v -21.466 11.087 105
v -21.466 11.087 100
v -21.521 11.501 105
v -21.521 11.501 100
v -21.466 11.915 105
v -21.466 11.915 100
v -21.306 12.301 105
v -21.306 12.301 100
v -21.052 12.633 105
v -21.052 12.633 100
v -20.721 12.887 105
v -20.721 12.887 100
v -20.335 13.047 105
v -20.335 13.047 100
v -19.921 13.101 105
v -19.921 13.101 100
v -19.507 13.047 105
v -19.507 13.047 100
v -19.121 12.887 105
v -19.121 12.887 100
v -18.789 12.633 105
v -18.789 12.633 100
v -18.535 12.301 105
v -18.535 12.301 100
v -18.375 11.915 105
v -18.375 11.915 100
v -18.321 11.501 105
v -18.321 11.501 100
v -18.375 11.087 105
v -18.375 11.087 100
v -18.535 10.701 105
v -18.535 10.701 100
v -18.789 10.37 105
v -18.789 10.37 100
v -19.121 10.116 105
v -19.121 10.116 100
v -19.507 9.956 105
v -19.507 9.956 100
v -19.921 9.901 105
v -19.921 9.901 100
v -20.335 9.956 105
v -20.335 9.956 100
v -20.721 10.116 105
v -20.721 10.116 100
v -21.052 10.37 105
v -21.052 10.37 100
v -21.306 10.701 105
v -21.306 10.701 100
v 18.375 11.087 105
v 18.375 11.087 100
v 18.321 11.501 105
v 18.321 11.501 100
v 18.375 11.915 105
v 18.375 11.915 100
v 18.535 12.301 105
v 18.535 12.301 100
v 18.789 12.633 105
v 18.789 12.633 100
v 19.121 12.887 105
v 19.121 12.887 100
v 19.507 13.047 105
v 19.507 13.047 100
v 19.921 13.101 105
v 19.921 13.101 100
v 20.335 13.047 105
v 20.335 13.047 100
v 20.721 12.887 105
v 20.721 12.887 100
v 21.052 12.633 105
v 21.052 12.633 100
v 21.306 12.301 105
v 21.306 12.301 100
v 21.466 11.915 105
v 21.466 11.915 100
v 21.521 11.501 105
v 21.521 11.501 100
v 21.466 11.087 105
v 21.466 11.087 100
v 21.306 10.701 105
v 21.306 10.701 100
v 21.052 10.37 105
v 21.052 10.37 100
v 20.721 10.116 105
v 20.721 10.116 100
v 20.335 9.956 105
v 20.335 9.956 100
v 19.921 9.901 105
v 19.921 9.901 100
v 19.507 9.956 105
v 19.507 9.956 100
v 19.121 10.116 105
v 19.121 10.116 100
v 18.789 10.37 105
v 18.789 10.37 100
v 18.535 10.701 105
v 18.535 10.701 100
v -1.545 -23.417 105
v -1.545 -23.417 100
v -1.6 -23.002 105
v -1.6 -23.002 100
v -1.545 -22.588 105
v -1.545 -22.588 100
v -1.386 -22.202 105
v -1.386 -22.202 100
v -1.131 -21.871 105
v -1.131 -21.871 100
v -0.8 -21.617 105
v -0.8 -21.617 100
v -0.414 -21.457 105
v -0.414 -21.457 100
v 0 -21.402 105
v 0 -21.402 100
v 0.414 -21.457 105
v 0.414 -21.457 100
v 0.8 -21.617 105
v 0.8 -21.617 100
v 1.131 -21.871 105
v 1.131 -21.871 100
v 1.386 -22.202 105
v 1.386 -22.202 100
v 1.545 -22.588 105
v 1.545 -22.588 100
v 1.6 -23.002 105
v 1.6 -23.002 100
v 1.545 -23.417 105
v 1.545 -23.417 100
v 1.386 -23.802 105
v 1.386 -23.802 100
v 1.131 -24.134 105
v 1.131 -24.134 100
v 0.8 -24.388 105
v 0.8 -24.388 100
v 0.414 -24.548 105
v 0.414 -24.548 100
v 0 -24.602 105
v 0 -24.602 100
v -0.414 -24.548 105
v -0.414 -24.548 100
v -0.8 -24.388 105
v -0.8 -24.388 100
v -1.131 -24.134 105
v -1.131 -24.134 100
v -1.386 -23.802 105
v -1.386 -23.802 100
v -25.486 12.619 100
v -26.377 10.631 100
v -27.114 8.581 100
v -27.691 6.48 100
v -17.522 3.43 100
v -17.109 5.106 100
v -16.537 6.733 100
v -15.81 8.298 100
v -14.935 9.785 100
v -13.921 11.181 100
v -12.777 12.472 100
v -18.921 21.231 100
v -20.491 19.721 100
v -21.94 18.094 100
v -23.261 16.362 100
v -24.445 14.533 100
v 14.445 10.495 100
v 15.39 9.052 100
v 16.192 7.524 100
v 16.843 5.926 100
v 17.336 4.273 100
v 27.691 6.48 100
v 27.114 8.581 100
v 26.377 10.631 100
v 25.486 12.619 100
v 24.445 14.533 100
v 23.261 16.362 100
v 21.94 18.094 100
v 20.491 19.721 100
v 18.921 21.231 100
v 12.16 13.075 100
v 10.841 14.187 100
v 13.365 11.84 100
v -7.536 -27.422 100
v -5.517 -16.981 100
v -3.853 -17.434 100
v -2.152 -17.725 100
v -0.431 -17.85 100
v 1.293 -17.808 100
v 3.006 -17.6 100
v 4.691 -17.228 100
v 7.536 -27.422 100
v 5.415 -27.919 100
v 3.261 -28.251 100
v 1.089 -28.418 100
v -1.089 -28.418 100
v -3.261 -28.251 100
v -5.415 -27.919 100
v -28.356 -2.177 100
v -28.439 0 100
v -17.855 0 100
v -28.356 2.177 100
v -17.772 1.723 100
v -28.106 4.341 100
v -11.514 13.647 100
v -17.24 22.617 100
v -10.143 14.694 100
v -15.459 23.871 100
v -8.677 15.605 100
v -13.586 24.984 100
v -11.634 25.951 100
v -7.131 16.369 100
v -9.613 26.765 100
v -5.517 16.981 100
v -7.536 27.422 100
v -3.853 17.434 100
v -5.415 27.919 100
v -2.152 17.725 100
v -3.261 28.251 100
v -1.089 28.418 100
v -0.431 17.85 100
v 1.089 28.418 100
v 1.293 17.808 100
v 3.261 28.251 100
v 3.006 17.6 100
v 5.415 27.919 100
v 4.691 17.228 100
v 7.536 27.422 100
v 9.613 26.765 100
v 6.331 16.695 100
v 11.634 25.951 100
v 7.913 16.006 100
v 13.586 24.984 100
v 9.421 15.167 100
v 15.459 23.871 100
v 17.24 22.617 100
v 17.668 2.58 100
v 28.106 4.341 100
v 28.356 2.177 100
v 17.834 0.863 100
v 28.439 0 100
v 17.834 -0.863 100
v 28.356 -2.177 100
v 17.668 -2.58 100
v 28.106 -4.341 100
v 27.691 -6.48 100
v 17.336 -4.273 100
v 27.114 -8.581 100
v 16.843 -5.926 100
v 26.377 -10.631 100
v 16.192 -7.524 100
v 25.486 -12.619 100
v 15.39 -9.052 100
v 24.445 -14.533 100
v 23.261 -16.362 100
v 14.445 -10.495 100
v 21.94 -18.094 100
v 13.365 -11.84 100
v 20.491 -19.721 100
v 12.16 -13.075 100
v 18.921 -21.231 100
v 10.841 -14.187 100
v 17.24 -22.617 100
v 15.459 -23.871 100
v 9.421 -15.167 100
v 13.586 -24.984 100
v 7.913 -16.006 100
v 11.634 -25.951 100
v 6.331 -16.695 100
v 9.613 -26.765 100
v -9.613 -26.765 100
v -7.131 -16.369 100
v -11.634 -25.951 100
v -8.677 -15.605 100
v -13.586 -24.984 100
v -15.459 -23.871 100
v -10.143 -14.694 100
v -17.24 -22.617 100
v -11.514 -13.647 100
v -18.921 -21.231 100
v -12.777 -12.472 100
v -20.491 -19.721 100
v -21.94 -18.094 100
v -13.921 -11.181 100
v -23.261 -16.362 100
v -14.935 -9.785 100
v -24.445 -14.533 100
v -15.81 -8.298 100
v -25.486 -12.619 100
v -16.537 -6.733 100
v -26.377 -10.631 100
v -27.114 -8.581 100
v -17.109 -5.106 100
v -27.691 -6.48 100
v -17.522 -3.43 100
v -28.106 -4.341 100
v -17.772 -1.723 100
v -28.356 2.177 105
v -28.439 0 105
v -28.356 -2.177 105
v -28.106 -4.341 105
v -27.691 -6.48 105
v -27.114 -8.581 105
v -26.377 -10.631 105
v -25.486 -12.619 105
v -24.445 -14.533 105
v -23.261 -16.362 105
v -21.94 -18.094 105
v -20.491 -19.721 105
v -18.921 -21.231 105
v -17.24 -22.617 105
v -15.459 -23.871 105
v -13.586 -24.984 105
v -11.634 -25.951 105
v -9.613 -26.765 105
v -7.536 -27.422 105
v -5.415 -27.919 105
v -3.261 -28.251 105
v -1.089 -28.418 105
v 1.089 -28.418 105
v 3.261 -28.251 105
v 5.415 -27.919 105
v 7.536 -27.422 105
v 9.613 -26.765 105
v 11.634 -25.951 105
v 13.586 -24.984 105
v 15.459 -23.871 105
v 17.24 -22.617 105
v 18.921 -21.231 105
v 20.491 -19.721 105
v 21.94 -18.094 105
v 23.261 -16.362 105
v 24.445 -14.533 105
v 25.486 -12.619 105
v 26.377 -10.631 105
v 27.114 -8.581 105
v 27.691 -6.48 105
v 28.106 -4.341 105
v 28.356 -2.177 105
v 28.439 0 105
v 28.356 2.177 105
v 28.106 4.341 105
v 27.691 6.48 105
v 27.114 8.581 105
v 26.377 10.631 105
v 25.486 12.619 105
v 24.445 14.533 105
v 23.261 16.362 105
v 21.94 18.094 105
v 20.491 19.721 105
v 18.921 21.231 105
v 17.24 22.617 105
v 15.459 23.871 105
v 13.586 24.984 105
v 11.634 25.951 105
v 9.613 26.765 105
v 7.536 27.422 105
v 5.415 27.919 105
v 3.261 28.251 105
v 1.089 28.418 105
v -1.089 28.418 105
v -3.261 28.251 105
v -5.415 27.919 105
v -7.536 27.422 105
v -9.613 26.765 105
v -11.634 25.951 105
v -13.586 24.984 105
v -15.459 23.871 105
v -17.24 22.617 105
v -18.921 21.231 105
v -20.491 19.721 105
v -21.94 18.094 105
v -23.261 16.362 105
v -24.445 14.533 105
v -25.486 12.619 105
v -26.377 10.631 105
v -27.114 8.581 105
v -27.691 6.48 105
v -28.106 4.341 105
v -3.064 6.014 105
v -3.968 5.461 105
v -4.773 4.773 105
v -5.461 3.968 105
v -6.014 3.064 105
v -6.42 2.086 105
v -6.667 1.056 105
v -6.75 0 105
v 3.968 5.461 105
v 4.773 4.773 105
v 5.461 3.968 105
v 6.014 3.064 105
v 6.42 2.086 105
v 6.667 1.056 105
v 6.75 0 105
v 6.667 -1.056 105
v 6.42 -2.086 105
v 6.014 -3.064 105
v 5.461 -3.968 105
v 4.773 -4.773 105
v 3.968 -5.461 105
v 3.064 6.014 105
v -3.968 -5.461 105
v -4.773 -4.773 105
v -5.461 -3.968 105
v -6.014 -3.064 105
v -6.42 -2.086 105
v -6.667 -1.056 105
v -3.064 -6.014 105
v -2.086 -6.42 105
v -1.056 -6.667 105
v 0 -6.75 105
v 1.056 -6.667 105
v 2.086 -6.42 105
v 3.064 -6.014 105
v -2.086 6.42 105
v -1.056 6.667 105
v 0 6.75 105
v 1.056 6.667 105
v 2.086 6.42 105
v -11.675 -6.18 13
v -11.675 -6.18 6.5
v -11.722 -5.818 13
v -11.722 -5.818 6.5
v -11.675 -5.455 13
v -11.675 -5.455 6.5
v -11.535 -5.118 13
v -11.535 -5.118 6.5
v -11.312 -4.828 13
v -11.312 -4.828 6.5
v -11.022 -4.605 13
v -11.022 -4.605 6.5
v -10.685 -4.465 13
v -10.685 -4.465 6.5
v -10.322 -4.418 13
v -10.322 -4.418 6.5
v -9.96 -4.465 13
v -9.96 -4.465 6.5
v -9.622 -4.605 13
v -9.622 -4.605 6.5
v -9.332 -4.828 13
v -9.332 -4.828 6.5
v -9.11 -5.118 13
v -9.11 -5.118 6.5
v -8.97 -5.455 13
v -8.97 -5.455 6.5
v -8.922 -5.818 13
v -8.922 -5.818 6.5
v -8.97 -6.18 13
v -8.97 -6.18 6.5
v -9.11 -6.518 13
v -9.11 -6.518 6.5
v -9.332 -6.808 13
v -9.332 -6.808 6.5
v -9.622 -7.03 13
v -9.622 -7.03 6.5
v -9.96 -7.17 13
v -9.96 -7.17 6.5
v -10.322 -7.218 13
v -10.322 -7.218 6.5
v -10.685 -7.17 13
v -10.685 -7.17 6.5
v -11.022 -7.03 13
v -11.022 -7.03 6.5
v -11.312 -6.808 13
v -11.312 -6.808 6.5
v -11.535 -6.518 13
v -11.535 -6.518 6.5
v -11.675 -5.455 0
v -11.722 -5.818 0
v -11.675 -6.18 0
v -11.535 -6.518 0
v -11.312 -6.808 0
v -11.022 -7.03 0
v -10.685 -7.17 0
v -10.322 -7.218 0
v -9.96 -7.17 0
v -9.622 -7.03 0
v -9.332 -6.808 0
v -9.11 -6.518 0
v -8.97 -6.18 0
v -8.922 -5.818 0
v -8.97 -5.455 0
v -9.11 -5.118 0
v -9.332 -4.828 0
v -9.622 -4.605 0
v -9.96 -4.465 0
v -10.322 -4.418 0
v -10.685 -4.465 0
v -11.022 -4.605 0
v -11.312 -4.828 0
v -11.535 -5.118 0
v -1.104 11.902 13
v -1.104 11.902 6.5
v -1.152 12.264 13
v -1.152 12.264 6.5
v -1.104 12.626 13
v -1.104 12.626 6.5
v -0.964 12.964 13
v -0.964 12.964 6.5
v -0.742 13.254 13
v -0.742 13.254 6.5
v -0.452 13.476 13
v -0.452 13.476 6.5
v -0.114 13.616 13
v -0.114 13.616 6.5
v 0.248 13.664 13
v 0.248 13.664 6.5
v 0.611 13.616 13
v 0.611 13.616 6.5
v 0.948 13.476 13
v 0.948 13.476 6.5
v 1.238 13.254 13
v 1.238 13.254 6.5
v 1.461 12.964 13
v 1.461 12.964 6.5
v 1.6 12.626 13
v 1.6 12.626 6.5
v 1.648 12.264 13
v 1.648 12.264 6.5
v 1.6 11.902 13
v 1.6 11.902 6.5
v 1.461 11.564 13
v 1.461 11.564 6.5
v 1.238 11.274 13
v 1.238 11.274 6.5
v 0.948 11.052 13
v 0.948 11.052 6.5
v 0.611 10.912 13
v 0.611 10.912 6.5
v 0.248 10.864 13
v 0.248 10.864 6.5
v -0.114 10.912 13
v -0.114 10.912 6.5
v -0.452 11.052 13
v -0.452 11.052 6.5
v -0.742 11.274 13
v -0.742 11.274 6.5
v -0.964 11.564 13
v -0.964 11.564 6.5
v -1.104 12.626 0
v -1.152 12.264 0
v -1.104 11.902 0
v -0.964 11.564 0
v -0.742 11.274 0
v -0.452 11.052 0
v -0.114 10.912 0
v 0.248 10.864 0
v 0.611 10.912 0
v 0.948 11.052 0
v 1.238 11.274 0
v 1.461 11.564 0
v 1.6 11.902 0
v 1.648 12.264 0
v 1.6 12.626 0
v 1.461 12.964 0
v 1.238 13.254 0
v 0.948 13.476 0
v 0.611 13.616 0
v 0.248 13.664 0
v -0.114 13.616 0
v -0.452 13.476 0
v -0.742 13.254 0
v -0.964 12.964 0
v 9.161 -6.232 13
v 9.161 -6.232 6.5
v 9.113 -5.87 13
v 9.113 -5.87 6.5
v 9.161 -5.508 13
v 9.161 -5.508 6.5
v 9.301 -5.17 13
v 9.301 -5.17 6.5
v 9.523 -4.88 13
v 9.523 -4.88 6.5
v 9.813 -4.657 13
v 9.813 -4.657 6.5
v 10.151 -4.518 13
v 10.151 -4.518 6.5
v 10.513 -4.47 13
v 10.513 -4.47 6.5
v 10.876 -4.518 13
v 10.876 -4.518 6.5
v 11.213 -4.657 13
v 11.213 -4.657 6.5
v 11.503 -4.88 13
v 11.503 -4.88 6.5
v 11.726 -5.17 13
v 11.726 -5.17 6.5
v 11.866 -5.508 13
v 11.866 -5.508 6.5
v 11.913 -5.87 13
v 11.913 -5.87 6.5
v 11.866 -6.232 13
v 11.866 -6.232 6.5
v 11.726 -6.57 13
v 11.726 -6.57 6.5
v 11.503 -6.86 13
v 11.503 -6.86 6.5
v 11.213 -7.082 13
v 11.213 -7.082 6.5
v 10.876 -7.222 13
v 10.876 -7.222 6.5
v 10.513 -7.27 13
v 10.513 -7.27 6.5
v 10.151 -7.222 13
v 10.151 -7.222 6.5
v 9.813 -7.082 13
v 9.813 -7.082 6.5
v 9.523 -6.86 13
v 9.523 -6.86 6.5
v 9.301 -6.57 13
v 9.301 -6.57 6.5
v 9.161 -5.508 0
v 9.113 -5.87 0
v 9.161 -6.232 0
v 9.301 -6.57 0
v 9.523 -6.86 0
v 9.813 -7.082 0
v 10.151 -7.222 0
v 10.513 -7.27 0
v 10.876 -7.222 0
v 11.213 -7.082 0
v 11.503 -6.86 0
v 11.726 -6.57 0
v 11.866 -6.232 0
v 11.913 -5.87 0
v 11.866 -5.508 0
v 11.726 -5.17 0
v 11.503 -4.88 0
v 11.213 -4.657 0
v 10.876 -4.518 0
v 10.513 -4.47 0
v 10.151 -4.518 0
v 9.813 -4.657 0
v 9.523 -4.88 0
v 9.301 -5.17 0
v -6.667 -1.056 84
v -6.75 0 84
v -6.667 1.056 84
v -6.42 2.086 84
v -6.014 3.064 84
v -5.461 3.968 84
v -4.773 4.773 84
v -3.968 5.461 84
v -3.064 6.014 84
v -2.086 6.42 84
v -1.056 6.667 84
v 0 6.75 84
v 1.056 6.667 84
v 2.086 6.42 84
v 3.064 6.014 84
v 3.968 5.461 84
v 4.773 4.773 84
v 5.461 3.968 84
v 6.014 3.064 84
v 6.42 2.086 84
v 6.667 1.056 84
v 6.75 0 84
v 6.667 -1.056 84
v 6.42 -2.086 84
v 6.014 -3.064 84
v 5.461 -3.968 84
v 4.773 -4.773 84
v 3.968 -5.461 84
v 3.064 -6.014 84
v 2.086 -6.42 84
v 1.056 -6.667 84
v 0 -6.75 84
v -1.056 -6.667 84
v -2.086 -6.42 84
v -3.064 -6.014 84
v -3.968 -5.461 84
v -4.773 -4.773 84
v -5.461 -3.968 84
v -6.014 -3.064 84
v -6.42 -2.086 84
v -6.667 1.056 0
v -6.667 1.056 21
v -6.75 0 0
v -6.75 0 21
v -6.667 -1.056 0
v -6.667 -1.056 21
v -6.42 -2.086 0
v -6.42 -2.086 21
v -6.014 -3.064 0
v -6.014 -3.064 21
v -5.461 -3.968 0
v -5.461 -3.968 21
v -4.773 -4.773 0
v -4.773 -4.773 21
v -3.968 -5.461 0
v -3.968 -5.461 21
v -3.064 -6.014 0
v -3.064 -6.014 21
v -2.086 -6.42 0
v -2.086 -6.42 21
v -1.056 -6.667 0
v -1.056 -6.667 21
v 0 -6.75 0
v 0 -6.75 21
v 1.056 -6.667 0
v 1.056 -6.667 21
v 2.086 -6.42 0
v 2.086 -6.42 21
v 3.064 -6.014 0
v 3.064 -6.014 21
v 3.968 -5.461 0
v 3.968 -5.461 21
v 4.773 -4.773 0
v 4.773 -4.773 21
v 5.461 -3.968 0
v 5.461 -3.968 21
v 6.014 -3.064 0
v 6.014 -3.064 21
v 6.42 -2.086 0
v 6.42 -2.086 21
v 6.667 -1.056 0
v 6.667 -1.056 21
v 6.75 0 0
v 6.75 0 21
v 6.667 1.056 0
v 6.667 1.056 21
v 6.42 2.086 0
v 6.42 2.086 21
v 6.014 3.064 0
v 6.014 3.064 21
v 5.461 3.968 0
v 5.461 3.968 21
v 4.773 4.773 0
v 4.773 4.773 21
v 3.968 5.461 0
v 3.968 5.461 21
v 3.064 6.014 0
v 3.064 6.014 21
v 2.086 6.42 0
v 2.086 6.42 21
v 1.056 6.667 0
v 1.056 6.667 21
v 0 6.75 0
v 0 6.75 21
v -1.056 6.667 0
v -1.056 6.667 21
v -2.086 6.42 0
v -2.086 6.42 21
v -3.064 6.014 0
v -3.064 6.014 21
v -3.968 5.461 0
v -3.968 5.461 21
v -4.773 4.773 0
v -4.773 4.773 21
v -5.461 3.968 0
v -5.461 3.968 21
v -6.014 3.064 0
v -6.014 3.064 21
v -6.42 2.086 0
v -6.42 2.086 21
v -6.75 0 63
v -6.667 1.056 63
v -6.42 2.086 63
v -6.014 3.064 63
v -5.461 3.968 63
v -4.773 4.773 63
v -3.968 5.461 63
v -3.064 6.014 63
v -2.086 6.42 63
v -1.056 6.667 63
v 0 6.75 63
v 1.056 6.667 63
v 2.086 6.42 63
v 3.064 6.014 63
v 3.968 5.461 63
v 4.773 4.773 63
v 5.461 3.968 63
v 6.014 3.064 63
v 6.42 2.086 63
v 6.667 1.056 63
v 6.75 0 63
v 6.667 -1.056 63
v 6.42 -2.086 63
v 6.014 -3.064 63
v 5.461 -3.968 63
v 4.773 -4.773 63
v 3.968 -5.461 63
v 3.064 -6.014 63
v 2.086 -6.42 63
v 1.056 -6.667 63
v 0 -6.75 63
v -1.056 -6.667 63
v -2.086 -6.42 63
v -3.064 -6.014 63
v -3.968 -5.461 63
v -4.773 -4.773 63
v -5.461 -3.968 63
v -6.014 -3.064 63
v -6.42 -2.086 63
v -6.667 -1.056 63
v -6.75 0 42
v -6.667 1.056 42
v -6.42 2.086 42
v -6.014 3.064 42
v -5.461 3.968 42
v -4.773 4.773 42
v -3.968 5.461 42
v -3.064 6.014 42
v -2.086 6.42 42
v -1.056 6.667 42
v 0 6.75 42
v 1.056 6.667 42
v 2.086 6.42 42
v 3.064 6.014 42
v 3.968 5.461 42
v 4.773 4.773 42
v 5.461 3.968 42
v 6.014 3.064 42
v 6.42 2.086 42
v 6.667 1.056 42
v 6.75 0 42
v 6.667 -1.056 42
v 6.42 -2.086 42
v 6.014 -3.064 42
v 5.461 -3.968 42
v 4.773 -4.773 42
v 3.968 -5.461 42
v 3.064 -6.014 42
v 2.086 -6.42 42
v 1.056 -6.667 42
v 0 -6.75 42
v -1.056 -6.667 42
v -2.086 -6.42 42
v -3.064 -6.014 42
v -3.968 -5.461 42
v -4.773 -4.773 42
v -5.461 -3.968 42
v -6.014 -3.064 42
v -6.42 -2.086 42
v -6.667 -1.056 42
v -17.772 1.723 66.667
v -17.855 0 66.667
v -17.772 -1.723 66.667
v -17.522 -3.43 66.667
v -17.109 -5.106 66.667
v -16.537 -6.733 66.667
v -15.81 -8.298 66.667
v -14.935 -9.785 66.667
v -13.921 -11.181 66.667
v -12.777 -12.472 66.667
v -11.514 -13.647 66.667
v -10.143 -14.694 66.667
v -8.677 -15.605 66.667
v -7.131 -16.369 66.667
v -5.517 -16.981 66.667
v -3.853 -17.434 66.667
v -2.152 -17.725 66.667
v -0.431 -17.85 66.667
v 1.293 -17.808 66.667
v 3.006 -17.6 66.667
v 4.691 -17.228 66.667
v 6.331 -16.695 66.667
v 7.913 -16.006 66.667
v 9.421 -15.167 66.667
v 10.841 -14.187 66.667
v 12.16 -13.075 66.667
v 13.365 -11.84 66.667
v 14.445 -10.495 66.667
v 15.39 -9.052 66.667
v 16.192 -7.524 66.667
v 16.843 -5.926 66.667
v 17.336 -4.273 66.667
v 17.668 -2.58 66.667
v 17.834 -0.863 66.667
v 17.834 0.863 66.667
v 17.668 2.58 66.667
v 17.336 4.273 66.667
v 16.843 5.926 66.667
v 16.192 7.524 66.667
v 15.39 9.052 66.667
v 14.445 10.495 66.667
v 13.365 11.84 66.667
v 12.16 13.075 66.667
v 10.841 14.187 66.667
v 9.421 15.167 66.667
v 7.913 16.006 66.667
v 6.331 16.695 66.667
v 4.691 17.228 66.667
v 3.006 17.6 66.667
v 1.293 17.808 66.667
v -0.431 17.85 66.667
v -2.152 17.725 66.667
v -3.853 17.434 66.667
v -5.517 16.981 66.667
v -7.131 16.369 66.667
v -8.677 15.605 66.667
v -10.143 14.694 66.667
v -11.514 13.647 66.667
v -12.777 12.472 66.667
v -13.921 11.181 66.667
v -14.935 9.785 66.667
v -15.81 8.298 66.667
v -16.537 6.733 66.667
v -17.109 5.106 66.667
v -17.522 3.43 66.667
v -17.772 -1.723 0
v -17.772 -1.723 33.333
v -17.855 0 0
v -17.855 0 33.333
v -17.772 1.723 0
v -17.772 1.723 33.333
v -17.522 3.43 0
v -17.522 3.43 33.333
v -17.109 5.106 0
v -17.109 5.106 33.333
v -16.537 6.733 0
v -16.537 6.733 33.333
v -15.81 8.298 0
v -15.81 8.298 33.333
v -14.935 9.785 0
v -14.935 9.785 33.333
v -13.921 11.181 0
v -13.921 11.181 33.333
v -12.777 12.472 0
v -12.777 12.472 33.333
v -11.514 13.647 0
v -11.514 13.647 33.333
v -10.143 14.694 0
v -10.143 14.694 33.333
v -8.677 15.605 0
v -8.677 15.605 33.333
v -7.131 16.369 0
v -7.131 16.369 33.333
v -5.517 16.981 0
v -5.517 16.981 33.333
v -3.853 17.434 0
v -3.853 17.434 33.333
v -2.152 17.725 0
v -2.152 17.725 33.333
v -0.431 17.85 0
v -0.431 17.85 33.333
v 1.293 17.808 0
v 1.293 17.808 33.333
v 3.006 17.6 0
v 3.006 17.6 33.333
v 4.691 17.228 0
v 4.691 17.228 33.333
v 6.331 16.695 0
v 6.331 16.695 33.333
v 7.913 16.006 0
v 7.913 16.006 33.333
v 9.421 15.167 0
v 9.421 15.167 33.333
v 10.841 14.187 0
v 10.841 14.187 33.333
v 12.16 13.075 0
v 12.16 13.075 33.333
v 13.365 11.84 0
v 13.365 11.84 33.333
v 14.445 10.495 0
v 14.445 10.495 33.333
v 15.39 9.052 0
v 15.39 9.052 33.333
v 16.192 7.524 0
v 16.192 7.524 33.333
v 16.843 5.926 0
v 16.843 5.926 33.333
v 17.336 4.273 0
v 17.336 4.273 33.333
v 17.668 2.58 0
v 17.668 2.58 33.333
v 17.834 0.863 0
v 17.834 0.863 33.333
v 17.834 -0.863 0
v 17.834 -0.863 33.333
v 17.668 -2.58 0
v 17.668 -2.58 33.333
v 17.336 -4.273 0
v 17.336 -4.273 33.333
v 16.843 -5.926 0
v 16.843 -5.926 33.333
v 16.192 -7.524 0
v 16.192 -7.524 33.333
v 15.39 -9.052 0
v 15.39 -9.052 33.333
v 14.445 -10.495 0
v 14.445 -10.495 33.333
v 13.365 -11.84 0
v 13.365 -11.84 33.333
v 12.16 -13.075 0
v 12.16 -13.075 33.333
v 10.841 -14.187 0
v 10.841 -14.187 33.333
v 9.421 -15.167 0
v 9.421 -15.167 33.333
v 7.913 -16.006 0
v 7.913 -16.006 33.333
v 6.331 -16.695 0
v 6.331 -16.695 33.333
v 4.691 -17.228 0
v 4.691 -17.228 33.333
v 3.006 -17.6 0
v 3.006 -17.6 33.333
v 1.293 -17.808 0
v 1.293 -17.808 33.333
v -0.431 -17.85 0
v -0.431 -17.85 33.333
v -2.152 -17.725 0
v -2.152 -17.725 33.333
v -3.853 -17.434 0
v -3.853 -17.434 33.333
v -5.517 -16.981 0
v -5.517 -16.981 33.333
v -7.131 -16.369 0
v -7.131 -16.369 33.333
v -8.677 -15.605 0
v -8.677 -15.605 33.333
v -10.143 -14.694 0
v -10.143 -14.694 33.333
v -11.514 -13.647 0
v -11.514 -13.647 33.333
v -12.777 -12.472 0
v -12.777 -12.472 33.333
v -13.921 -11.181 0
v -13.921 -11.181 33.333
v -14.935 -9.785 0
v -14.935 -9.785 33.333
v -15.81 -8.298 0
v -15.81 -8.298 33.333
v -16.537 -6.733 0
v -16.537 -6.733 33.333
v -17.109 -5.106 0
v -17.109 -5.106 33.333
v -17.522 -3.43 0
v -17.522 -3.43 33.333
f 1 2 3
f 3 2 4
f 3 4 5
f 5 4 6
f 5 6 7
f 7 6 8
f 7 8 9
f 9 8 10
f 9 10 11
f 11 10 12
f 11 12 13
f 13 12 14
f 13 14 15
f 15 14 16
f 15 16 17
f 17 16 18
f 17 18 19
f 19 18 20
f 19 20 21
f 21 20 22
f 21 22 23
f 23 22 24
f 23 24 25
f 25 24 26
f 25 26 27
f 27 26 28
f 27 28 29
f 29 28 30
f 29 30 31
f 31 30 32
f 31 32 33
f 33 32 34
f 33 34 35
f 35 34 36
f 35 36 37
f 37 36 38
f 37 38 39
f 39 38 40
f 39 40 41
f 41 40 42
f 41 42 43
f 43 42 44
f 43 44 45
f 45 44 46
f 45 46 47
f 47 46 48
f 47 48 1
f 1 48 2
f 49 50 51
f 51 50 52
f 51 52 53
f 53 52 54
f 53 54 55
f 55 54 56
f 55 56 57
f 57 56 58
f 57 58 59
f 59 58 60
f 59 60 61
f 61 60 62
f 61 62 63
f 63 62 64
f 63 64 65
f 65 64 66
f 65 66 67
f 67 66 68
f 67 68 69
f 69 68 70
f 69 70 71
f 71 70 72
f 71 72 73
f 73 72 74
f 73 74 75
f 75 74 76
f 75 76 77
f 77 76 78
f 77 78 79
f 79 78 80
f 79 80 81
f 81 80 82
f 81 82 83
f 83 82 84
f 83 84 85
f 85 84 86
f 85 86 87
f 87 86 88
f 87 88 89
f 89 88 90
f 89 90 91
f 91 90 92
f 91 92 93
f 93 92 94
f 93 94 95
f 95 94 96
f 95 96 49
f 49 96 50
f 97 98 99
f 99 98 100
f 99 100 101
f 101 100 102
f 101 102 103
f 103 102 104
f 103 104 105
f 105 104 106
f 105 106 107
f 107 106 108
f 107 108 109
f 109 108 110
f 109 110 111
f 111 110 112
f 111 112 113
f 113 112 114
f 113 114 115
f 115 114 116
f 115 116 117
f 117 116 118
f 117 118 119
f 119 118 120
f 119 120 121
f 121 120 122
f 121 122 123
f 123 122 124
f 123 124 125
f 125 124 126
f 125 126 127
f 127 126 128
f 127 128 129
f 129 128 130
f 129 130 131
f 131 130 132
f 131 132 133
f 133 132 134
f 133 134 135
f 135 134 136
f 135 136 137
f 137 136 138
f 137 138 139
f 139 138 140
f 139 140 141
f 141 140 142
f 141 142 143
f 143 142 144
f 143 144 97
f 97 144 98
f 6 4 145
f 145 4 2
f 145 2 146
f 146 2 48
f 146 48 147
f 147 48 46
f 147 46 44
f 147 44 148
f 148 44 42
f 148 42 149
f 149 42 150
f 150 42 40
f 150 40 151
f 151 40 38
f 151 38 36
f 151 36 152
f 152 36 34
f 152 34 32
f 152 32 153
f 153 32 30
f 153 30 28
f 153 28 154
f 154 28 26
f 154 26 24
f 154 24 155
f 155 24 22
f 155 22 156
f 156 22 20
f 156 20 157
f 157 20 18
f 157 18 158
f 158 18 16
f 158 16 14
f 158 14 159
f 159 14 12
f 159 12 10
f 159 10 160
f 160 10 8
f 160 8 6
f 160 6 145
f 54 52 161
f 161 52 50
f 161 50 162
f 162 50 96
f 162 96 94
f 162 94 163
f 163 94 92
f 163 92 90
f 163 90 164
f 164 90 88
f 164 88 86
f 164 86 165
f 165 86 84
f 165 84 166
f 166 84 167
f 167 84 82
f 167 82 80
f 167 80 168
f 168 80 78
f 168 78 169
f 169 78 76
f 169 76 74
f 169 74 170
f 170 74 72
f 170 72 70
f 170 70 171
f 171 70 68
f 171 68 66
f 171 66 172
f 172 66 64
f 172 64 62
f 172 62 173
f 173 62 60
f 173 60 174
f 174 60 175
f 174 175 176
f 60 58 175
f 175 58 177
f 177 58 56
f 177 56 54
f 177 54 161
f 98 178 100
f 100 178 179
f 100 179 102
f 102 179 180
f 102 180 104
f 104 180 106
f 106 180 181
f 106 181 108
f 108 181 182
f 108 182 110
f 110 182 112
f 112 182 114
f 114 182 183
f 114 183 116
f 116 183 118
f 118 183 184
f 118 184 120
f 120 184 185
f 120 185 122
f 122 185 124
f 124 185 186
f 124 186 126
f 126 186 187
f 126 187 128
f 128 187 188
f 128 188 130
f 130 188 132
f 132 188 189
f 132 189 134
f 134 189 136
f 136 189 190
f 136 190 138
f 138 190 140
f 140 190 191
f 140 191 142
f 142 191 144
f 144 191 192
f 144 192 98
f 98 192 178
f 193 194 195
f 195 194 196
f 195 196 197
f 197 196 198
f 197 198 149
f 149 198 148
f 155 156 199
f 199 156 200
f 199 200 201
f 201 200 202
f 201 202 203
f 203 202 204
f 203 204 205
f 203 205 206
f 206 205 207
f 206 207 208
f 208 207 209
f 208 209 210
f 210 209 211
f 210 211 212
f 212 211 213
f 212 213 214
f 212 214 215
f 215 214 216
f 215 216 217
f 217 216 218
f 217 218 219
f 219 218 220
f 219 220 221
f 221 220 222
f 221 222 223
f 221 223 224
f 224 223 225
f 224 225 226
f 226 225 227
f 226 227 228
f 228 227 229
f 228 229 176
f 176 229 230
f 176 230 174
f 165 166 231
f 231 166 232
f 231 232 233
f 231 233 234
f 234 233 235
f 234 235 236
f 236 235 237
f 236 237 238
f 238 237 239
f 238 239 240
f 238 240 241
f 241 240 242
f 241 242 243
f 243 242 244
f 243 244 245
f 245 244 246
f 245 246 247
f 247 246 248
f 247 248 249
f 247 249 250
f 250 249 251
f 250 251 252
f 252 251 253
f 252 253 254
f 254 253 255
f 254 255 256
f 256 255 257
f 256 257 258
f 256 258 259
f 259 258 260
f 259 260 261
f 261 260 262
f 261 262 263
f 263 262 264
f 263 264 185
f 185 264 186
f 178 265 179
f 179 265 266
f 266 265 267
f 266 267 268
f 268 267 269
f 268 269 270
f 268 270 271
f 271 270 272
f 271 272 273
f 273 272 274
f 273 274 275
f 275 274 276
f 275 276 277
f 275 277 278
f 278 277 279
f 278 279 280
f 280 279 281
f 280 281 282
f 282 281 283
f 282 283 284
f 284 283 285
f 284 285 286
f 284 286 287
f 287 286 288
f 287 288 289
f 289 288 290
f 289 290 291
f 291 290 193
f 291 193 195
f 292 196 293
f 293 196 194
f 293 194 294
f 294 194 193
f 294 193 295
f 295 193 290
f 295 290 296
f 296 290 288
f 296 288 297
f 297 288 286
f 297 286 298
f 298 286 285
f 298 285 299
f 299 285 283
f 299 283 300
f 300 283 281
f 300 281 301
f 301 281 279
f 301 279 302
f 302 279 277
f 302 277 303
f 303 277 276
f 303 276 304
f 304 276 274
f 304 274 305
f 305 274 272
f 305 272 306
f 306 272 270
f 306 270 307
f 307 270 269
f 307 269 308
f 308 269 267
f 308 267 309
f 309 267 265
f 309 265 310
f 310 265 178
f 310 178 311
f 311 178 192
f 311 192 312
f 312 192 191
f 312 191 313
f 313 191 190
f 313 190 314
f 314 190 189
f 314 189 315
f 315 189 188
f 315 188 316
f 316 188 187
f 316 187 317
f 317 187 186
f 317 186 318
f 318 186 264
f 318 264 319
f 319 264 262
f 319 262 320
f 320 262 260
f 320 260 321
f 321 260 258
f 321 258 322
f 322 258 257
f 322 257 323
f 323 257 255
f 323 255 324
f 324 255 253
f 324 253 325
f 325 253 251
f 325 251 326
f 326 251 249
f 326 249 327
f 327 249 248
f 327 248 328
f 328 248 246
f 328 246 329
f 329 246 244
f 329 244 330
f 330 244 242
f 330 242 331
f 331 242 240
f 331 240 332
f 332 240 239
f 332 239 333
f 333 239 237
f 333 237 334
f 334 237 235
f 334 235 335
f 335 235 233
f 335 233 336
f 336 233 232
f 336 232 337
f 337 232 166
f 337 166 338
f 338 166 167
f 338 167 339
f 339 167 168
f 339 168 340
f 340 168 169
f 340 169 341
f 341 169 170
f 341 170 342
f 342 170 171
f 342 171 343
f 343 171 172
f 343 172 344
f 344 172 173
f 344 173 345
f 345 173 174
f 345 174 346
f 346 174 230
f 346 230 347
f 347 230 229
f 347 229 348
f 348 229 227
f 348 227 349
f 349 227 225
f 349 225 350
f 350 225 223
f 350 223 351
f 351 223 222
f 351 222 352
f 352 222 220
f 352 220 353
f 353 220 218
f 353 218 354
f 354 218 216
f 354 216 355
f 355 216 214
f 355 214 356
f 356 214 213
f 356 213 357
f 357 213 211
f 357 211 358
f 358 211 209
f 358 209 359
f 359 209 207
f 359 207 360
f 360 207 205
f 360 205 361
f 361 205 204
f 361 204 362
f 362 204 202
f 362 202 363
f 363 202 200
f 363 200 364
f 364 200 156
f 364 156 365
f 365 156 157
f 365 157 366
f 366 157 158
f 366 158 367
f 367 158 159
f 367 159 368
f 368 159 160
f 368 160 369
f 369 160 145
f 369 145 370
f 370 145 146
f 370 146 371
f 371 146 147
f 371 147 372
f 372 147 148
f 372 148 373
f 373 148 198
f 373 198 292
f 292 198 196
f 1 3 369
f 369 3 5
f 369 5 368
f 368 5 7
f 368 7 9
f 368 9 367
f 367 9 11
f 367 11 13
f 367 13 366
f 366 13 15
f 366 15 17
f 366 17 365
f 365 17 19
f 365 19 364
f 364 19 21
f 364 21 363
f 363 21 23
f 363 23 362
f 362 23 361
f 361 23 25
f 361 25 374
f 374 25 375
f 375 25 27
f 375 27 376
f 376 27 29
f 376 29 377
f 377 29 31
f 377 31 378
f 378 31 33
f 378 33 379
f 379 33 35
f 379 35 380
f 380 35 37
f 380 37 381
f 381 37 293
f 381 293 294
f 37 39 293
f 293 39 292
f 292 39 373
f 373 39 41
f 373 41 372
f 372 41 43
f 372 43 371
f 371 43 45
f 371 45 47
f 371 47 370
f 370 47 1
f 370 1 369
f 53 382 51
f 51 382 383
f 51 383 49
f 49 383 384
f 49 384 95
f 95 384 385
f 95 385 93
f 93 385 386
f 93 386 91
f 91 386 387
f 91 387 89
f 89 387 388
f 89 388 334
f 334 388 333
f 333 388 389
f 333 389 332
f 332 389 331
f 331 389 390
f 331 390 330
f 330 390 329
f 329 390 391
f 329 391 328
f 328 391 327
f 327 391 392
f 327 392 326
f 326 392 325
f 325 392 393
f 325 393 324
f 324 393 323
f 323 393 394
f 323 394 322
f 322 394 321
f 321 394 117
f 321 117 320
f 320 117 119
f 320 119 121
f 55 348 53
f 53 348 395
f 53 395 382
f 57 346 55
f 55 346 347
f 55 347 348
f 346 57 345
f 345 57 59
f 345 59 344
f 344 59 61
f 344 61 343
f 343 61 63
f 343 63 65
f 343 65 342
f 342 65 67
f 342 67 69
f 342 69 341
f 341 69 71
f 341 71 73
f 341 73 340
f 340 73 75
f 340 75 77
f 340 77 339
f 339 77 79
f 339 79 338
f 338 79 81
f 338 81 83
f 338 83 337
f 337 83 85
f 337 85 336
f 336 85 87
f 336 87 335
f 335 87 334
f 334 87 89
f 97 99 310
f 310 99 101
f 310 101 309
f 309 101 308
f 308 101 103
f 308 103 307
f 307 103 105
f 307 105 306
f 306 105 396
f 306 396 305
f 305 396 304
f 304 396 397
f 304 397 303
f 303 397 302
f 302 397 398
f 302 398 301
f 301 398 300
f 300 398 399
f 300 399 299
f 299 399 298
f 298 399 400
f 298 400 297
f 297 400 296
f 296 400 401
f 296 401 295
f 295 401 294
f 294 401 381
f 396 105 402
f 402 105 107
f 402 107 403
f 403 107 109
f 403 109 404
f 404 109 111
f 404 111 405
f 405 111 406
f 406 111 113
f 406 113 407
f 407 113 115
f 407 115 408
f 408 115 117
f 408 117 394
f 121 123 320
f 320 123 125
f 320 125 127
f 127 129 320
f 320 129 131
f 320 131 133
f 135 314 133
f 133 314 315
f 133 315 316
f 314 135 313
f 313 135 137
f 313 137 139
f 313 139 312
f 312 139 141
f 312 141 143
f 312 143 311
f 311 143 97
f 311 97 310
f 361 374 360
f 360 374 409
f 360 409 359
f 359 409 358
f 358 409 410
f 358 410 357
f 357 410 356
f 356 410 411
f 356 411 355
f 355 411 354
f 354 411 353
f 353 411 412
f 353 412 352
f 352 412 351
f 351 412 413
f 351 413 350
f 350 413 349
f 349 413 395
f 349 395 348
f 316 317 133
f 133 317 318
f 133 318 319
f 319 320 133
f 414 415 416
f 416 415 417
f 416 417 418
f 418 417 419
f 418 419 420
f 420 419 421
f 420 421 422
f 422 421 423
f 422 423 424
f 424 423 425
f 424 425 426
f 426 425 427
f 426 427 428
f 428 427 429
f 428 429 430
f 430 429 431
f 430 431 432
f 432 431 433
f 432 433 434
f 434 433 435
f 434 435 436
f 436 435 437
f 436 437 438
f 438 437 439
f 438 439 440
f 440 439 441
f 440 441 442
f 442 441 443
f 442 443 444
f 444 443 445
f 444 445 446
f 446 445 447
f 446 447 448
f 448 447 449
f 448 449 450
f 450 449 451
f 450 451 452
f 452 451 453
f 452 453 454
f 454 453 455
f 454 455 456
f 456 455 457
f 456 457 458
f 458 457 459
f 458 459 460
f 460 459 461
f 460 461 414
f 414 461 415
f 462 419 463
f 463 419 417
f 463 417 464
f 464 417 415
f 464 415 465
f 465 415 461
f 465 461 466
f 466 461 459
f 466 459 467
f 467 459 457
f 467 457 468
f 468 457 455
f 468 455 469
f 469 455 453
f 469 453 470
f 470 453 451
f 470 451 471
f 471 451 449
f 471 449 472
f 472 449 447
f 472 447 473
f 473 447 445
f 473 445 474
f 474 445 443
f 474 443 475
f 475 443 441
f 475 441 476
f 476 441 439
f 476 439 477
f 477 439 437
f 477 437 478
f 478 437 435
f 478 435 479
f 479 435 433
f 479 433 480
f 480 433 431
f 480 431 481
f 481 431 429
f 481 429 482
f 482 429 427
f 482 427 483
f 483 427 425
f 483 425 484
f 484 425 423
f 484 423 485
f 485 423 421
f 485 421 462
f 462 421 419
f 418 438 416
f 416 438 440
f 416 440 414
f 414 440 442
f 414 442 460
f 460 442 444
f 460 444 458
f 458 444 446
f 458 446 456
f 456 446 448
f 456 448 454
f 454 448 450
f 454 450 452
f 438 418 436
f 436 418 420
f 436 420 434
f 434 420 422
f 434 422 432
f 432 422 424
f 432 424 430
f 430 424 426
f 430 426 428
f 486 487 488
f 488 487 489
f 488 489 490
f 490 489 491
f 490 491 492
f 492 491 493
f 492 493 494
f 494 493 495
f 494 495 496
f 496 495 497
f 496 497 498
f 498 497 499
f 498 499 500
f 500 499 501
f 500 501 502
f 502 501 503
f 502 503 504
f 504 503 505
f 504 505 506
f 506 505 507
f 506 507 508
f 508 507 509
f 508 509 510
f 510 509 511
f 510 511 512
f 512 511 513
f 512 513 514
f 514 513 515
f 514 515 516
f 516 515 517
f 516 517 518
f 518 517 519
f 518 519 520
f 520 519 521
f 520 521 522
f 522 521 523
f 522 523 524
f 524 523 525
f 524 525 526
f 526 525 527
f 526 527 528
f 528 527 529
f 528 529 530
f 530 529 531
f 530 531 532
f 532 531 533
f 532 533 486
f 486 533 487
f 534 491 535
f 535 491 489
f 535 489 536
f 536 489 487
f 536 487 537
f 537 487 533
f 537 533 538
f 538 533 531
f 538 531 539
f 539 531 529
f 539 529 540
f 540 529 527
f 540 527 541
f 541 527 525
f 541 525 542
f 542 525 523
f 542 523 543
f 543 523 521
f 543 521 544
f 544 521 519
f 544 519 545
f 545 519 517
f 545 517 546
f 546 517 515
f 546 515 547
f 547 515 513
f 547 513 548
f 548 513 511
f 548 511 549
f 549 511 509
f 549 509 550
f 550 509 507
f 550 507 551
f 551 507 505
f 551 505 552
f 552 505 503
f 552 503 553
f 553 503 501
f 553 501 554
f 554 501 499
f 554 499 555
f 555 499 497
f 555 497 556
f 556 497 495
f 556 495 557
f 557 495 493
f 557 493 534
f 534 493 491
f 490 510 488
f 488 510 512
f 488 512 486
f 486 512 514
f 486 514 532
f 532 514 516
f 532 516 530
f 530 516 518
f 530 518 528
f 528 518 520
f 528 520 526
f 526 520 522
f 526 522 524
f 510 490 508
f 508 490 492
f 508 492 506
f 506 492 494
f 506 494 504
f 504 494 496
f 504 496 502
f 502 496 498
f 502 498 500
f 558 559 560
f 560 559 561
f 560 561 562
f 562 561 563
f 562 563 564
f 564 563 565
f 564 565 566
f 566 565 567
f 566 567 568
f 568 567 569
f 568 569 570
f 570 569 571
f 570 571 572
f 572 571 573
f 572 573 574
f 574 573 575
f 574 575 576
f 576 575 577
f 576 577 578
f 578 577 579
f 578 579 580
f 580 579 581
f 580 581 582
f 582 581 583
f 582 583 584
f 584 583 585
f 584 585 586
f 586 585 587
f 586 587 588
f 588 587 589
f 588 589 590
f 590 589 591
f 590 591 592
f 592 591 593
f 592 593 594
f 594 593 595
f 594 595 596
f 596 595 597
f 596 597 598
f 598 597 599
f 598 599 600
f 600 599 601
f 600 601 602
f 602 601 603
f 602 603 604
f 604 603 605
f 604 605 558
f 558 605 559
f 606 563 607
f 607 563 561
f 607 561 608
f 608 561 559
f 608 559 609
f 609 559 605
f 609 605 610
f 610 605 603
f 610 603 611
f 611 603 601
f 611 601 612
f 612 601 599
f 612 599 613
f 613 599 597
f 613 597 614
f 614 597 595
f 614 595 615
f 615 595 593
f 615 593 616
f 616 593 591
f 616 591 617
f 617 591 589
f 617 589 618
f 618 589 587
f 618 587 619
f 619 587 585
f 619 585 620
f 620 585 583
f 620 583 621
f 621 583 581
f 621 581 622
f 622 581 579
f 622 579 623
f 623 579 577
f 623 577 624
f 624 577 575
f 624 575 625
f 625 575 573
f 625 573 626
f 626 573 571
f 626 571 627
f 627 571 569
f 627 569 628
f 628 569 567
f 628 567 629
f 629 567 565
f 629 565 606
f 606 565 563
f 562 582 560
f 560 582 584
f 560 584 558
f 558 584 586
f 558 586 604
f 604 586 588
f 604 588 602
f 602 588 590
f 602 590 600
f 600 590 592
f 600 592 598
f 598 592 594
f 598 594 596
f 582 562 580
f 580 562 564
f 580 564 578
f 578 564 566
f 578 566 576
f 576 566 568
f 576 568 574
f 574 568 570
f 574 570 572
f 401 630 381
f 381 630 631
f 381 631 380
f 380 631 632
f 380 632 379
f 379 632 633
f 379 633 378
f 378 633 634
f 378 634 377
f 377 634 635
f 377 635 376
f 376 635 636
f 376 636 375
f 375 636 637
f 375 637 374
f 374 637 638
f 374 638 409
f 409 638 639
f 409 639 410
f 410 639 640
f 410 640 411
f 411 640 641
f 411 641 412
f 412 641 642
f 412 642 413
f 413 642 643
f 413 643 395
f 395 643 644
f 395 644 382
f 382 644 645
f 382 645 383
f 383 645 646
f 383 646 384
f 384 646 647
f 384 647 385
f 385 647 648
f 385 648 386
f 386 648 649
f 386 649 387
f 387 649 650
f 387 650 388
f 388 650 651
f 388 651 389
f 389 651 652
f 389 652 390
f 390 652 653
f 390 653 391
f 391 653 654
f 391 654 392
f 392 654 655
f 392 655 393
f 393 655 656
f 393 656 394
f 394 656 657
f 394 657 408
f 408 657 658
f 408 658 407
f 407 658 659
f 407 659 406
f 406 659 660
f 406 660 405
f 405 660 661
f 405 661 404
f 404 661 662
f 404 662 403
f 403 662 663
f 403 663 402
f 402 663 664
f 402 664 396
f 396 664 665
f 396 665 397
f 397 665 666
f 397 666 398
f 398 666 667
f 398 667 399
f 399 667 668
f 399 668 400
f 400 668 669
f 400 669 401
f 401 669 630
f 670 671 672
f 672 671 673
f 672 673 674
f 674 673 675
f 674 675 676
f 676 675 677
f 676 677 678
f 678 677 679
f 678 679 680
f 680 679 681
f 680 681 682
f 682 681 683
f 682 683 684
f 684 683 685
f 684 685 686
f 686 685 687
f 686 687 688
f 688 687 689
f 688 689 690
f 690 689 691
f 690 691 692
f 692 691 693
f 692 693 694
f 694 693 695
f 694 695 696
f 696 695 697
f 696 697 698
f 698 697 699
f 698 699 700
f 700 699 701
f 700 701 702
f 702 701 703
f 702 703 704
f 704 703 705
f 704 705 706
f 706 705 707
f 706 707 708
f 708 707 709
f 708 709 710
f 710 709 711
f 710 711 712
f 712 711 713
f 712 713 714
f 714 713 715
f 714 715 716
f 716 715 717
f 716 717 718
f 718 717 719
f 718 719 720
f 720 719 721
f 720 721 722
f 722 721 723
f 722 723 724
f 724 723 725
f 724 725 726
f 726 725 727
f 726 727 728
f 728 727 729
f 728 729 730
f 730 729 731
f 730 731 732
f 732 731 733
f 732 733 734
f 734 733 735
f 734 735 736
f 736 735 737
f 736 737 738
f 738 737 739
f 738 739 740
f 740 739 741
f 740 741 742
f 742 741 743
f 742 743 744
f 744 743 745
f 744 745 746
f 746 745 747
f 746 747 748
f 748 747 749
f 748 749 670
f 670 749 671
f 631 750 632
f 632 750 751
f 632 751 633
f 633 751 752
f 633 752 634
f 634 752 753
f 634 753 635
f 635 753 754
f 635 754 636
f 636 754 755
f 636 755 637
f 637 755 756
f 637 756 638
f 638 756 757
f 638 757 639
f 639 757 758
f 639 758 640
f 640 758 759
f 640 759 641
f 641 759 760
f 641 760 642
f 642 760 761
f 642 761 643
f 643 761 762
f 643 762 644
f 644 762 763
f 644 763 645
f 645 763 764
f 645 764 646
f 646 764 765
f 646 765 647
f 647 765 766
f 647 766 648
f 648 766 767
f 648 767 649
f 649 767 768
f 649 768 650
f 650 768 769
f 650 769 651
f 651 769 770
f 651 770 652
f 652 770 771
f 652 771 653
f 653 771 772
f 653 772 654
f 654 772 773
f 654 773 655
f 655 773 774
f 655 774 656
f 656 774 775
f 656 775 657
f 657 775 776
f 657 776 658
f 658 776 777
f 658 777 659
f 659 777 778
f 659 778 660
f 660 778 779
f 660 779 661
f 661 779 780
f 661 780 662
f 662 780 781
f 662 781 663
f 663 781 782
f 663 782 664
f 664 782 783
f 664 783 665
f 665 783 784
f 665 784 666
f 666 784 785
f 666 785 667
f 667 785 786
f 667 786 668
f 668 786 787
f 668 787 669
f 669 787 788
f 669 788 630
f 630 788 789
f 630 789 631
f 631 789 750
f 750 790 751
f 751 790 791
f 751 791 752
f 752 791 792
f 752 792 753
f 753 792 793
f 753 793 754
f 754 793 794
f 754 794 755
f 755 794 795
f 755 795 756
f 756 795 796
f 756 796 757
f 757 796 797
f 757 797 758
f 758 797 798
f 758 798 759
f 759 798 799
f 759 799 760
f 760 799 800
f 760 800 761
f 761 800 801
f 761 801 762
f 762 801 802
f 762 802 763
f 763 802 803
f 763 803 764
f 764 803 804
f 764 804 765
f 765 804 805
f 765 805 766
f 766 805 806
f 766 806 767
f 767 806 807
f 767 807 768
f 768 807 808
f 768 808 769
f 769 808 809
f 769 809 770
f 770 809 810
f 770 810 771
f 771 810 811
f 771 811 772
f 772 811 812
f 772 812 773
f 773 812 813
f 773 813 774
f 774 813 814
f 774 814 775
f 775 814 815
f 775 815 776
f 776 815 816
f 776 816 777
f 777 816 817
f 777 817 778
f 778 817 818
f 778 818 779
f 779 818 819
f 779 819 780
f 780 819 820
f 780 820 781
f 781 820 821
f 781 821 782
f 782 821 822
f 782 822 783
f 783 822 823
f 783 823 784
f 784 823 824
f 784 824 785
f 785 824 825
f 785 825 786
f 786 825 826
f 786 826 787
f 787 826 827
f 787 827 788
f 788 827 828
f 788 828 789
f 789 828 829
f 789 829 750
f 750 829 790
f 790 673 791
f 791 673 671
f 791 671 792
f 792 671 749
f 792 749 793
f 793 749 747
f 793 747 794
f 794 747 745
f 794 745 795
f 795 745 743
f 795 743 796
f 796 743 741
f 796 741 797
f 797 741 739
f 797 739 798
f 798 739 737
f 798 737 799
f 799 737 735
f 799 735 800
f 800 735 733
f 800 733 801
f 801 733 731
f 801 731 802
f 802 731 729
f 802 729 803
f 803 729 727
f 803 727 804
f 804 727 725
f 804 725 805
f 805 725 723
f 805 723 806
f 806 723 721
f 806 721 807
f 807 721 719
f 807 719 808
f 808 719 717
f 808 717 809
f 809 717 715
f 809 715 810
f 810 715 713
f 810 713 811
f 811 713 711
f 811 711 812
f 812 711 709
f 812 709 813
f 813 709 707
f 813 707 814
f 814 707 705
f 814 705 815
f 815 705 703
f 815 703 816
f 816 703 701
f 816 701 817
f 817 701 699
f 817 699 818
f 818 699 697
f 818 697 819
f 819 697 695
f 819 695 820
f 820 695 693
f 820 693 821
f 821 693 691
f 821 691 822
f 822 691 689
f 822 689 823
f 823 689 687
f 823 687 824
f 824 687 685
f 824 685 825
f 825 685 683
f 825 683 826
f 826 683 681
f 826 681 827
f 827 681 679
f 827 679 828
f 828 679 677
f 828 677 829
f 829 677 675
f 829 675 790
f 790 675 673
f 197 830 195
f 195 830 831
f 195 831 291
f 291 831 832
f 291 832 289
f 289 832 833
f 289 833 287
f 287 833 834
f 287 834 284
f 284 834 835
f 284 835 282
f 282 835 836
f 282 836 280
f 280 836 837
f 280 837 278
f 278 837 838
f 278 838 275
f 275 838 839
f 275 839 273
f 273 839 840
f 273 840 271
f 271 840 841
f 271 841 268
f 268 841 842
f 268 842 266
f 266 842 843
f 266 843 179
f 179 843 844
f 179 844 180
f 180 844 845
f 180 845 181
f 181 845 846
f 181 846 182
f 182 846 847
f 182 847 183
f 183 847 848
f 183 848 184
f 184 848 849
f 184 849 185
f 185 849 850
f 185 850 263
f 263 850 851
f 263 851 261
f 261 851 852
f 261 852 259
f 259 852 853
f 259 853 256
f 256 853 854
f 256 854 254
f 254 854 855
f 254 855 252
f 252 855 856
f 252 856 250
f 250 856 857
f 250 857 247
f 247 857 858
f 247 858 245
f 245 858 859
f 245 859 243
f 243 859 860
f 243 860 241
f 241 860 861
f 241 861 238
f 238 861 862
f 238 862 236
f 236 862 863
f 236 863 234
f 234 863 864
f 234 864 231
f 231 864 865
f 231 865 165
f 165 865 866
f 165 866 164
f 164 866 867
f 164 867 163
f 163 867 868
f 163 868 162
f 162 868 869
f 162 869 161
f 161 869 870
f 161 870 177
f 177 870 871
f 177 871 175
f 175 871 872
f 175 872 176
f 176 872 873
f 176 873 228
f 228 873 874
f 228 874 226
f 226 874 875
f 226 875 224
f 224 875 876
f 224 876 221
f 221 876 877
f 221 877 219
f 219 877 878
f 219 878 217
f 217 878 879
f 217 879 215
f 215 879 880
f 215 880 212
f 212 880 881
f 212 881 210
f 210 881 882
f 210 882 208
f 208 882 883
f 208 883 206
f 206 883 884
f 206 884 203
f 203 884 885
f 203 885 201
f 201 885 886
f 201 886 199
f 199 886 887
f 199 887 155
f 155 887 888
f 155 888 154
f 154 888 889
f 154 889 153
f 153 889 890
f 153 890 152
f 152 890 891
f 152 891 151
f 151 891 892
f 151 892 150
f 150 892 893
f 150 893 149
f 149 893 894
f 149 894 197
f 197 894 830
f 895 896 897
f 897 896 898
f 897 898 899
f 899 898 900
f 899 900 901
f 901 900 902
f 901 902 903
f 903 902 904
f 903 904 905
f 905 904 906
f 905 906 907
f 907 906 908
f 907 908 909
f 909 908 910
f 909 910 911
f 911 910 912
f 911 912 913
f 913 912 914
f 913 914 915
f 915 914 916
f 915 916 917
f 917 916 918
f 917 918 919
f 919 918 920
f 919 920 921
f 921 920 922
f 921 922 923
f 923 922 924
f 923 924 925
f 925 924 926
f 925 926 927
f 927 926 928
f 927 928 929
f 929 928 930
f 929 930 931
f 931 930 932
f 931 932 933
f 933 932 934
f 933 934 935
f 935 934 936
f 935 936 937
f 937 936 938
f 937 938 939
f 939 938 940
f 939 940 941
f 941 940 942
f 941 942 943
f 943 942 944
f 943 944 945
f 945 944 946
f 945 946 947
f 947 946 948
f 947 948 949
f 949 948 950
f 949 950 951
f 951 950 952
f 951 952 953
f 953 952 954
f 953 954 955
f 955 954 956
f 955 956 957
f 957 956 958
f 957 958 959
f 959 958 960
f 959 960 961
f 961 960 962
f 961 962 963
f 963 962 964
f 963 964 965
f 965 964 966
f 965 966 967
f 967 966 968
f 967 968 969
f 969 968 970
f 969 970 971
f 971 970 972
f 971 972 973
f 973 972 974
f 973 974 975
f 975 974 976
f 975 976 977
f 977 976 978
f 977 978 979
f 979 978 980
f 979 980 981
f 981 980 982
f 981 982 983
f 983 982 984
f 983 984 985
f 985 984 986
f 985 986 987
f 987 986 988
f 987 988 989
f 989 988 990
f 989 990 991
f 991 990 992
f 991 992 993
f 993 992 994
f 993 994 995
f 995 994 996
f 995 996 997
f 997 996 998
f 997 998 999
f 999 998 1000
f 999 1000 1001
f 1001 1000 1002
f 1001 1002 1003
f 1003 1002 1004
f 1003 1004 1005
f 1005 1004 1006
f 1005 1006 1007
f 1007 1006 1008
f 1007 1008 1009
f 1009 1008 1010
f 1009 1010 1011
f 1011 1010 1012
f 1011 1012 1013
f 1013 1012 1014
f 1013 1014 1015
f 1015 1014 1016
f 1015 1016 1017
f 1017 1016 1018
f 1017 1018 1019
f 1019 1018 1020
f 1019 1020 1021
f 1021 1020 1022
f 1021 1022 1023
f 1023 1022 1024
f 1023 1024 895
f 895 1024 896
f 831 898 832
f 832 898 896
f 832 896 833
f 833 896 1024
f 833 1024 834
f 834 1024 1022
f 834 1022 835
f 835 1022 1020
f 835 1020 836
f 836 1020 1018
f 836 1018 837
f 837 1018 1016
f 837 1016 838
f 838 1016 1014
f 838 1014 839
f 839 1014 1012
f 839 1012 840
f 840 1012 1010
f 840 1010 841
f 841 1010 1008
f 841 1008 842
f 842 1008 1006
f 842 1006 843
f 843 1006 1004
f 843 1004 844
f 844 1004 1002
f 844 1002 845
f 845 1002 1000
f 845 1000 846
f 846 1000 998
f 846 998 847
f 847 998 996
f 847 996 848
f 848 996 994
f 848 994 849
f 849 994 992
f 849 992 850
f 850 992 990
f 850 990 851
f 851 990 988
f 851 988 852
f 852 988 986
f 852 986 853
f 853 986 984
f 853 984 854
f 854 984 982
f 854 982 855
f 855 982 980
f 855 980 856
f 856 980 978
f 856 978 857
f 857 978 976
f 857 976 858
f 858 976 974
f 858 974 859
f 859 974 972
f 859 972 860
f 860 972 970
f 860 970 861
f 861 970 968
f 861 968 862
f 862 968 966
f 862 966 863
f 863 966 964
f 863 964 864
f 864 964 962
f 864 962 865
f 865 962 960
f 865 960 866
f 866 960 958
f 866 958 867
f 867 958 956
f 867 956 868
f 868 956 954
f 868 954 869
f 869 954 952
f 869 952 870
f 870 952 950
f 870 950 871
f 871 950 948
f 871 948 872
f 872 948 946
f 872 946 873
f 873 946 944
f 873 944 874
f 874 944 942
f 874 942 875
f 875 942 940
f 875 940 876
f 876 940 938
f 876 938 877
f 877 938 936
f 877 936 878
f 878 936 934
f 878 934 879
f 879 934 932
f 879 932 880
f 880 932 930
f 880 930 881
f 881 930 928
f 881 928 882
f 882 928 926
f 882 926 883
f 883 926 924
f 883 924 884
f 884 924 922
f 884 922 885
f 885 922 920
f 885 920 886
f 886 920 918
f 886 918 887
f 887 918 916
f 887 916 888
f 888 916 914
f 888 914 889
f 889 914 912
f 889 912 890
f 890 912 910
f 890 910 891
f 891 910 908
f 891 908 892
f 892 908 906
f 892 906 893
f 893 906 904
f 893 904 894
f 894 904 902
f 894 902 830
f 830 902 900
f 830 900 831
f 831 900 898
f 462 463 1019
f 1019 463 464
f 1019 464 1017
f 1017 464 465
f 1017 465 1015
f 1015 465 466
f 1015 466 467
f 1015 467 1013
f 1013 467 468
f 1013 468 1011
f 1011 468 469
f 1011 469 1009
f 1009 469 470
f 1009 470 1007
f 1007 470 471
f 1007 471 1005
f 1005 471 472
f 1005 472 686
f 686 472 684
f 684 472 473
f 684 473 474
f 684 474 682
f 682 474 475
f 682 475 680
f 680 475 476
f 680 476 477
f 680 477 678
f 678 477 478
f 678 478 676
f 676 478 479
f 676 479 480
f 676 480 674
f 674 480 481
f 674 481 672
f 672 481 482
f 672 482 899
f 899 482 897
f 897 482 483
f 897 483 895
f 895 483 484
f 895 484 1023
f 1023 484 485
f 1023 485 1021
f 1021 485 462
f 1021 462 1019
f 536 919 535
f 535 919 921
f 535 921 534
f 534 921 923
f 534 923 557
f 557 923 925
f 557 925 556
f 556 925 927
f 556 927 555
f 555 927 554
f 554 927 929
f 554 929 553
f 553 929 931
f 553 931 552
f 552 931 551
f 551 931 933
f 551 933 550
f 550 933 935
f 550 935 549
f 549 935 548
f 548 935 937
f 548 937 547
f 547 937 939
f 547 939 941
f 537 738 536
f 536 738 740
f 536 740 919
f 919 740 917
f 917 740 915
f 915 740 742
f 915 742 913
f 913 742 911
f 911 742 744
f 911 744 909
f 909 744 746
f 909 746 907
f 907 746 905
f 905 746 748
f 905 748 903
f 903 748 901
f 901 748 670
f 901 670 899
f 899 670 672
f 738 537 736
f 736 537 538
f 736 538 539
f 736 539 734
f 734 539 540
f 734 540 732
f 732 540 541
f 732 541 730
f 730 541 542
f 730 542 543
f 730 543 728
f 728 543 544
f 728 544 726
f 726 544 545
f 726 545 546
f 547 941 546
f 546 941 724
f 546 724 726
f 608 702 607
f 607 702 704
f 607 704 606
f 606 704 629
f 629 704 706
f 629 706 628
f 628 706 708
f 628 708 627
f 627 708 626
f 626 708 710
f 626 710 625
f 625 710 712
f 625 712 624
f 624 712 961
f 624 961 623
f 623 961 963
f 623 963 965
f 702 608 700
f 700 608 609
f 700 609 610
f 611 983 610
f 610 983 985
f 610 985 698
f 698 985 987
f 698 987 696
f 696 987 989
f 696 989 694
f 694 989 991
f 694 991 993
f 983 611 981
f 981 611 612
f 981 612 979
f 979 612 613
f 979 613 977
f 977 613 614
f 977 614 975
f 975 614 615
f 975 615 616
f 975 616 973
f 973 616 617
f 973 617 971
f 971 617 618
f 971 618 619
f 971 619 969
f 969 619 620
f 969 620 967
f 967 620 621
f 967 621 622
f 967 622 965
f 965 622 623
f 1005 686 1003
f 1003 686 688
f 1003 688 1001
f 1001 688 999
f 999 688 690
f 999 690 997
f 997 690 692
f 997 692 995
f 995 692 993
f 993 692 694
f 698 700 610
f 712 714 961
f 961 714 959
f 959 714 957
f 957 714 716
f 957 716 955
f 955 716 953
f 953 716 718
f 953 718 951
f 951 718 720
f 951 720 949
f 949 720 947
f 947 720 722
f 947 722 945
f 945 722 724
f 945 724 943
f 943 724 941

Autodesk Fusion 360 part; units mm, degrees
sketch "Sketch1" plane through (0, 0, 0) normal (0, 0, 1) x (1, 0, 0)
  circle A0 centre (0, 0) radius 17.855
  circle A1 centre (0, 0) radius 6.75
  dimension "d1" = 35.71
  dimension "d2" = 13.5
extrude "Extrude1" add sketch "Sketch1" along normal blind 100
sketch "Sketch2" plane through (0, 0, 0) normal (0, 0, -1) x (1, 0, 0)
  circle A0 centre (0, 0) radius 6.75
  circle A1 centre (0, 0) radius 17.855
  circle A2 centre (0.2482, -12.264) radius 1.4
  circle A3 centre (10.5133, 5.8699) radius 1.4
  circle A4 centre (-10.3222, 5.8177) radius 1.4
  dimension "d5" = 2.8
  dimension "d6" = 2.8
  dimension "d7" = 2.8
extrude "Extrude2" cut sketch "Sketch2" against normal blind 13 contours A2 | A3 | A4
sketch "Sketch3" plane through (0, 0, 100) normal (0, 0, 1) x (1, 0, 0)
  circle A0 centre (0, 0) radius 28.439
  circle A1 centre (0, 0) radius 6.75
  circle A2 centre (0, 0) radius 17.855
extrude "Extrude3" add sketch "Sketch3" along normal blind 5 contours A0 | A2
sketch "Sketch4" plane through (0, 0, 100) normal (0, 0, -1) x (1, 0, 0)
  circle A0 centre (0, 0) radius 28.439
  circle A1 centre (0, 0) radius 17.855
  circle A2 centre (0, 23.0024) radius 1.6
  circle A3 centre (-19.9207, -11.5012) radius 1.6
  circle A4 centre (19.9207, -11.5012) radius 1.6
  dimension "d17" = 3.2
  dimension "d19" = 360
extrude "Extrude4" cut sketch "Sketch4" against normal blind 5 contours A2 | A3 | A4
